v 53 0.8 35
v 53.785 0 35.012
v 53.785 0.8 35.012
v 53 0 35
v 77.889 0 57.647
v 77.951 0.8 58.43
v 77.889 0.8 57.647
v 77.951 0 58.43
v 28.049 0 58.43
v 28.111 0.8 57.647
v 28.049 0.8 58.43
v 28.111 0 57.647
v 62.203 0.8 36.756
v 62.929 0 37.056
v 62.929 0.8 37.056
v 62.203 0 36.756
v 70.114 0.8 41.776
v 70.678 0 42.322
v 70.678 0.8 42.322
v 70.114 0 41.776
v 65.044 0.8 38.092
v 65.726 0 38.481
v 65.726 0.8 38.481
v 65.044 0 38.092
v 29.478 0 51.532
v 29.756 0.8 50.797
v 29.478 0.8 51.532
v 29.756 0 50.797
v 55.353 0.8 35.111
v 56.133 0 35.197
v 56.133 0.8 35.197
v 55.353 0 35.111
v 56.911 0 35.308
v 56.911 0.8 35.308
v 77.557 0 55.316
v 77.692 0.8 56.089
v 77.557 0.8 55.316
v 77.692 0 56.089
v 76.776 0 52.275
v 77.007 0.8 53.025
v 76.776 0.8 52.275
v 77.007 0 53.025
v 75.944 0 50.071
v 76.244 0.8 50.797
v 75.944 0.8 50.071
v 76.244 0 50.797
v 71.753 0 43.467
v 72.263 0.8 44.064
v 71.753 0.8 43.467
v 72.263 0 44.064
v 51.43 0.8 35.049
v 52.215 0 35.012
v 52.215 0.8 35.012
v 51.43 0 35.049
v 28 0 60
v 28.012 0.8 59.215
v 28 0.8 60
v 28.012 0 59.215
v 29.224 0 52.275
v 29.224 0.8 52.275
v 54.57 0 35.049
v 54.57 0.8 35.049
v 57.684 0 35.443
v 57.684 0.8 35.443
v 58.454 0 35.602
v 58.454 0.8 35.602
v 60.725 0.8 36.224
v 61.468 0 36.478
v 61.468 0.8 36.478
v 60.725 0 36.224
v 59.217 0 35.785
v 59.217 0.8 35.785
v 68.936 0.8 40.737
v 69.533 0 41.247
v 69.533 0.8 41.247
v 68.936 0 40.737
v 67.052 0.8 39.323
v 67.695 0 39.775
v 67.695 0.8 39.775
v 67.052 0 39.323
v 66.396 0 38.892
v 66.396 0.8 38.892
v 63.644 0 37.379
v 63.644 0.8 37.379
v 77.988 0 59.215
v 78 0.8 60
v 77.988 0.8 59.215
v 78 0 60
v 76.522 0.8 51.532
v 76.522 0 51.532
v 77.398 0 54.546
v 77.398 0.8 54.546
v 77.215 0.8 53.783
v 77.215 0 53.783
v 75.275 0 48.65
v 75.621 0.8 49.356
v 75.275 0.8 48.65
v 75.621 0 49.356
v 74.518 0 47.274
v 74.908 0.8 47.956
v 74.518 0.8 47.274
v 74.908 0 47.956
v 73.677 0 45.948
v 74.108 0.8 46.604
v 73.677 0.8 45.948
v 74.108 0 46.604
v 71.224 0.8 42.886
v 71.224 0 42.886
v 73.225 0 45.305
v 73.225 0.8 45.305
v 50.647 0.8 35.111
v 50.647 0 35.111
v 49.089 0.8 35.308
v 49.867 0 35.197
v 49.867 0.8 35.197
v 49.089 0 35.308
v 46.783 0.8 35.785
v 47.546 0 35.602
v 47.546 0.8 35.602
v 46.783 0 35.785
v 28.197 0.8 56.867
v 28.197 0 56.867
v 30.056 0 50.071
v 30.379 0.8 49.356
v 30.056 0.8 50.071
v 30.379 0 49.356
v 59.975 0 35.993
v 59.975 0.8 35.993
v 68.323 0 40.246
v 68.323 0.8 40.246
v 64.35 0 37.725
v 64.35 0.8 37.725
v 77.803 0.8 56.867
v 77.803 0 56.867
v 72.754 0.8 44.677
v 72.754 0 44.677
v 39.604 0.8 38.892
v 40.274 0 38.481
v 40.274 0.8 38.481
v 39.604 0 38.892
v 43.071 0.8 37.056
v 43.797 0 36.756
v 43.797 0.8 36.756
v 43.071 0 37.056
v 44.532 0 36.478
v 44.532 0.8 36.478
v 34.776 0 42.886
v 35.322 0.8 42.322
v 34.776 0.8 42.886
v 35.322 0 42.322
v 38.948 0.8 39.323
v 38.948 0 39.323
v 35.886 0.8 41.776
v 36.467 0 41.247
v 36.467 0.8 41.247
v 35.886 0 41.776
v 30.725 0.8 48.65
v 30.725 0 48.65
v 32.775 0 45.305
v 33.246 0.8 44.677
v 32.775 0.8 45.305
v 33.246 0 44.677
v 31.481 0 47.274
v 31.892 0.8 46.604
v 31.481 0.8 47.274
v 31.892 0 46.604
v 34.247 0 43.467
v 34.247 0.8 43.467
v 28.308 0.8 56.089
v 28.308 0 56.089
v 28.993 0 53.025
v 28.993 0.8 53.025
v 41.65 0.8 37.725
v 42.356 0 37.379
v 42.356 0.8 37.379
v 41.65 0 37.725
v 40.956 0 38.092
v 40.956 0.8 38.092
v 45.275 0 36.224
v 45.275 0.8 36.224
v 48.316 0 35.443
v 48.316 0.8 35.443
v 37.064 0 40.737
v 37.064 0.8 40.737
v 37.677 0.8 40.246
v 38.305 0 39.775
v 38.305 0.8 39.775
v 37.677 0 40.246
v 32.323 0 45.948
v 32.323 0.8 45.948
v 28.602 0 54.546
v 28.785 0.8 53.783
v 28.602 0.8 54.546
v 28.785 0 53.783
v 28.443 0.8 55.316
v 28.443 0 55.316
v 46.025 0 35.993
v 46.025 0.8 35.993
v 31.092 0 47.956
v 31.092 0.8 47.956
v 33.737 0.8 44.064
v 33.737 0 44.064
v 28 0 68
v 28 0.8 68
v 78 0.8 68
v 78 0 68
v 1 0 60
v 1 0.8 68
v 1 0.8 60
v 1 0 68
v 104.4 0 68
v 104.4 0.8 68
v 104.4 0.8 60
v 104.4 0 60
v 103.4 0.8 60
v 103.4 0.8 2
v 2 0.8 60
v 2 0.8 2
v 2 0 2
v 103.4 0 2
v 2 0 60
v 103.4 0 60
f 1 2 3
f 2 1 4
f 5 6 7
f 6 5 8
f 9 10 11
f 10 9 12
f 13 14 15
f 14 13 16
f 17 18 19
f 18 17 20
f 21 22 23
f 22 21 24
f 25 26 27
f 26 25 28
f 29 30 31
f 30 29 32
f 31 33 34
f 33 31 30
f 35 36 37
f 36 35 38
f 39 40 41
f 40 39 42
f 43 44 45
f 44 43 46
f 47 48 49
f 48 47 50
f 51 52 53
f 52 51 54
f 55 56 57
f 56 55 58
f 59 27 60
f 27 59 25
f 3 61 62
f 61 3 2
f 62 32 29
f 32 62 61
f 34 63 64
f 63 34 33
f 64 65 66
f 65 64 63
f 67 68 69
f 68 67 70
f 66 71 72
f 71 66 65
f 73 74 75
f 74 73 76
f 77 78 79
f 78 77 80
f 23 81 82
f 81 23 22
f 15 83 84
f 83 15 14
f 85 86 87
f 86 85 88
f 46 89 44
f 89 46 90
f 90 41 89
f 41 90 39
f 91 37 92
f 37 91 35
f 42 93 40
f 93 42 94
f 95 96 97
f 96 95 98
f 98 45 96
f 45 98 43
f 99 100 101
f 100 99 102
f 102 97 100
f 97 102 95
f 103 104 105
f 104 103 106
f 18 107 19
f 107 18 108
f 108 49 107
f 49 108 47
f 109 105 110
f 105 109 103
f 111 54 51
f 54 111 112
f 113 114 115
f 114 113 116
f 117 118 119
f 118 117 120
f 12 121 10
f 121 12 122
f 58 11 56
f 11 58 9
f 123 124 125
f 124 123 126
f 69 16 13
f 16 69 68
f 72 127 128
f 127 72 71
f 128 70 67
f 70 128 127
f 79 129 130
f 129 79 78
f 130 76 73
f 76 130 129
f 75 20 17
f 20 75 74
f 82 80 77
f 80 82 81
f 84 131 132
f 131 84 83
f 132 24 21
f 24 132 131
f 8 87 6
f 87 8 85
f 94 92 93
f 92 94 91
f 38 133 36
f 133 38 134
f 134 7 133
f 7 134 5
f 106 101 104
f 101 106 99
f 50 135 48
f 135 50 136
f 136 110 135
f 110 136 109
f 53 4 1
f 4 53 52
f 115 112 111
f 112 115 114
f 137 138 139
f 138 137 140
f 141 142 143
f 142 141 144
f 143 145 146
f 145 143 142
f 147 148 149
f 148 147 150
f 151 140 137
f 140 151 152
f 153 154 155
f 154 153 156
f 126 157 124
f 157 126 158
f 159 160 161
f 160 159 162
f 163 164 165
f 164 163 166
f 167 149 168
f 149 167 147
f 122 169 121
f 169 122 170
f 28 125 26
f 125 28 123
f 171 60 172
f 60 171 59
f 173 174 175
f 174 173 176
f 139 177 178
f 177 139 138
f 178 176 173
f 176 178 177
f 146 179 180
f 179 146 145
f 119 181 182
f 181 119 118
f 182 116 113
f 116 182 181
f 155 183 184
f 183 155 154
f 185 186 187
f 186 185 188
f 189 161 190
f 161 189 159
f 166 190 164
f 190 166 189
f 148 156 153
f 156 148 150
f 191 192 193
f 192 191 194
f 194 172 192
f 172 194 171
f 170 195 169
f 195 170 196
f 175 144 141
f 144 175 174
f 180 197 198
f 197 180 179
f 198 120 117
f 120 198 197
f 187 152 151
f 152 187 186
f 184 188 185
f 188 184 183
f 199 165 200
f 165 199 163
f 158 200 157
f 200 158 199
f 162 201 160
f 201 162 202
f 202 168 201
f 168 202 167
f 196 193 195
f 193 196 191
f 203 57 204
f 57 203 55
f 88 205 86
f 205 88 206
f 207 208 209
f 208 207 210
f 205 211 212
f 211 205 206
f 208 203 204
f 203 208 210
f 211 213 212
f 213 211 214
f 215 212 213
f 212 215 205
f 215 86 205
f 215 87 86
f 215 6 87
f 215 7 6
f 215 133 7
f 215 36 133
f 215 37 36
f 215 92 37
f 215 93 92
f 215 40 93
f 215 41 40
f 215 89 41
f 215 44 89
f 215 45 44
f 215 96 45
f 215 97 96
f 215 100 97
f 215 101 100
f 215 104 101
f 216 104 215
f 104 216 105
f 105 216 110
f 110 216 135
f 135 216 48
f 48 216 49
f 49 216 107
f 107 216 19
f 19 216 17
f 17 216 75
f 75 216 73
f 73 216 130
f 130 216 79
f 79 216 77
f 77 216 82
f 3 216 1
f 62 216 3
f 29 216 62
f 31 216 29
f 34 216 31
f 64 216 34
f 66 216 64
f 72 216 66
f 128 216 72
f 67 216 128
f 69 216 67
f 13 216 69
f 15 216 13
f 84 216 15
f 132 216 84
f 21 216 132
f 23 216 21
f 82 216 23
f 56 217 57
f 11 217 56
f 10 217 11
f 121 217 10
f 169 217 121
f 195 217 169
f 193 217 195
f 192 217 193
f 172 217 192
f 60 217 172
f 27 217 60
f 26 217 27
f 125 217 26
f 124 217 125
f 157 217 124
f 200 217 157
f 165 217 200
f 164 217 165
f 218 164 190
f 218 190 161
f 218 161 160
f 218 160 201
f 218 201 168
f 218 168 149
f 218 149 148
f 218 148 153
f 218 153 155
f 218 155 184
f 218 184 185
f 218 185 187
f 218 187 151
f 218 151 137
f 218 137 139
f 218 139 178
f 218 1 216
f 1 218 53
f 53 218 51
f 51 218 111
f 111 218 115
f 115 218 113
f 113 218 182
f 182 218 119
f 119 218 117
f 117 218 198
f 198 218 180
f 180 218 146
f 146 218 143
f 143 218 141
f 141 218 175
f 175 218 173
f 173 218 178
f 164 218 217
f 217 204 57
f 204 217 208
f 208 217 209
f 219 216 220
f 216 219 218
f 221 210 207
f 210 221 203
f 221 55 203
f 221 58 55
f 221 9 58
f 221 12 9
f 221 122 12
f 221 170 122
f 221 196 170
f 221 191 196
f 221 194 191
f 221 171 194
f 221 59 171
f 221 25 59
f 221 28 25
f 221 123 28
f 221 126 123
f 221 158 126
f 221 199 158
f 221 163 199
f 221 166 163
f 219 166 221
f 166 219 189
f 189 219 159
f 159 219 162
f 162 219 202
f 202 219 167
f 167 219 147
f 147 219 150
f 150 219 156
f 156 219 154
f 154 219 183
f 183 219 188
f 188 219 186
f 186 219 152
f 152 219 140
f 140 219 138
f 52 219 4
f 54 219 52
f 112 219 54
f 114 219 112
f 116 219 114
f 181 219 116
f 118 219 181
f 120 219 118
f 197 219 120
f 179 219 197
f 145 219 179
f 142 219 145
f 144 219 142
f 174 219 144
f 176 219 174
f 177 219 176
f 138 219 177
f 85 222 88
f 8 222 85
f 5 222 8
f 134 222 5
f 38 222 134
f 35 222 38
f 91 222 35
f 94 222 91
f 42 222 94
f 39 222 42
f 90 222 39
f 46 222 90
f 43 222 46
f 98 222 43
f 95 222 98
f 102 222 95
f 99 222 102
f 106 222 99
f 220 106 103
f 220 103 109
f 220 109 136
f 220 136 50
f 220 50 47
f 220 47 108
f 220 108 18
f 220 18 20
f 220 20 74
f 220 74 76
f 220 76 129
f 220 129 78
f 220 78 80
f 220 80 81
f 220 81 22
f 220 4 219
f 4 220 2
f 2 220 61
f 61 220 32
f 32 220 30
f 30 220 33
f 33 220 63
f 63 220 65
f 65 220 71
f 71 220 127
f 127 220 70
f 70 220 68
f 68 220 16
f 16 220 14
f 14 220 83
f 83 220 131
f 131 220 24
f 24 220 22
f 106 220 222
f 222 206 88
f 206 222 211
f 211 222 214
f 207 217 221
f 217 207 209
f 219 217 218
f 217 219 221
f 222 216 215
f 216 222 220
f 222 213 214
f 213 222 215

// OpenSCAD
$fn=200;

THICK = 2;

CARD_L = 168;
CARD_W = 102;
CARD_STACK = 68;

BOX_W = CARD_W + (THICK * 2);
BOX_L = CARD_L + (THICK * 2);
BOX_H = CARD_STACK + (THICK * 2);

SMALL_DECK_STACK = 7;

difference() {

    translate([1, 0, THICK])
        cube(size = [BOX_W - THICK - 0.6, 0.8, 66]);

    // translate([1, 0, THICK])
    //     cube(size = [BOX_W - THICK, 0.8, 68]);

    gap();

    translate([0, -1, 0])
        cube(size = [2, 2, 60]);

    translate([BOX_W - 2.6, -1, 0])
        cube(size = [2, 2, 60]);
}




// difference() {
//     cube(size = [BOX_W, BOX_L, BOX_H]);

//     translate([
//         THICK, 
//         THICK, 
//         BOX_H - CARD_STACK]) {
            
//         cube(size = [
//             CARD_W,
//             CARD_L,
//             CARD_STACK + 1]);
//     }
//     for ( i = [10 : 2 : CARD_L - 10] ){
//         translate([1, i, 60])
//             cube(size = [BOX_W - 2, 1, 40]);
//     }
//     gap();
// }

module gap() {
    translate([
        BOX_W / 2,
        490,
        60]) {

        rotate([90, 90, 0]) {
            cylinder(
                h = 1000,
                r = 25);
        }
    }

    translate([
        (BOX_L / 2) - 58, 
        -30, 
        60]) {
            
        cube(size = [
            50,
            250,
            20]);
    }   
}
